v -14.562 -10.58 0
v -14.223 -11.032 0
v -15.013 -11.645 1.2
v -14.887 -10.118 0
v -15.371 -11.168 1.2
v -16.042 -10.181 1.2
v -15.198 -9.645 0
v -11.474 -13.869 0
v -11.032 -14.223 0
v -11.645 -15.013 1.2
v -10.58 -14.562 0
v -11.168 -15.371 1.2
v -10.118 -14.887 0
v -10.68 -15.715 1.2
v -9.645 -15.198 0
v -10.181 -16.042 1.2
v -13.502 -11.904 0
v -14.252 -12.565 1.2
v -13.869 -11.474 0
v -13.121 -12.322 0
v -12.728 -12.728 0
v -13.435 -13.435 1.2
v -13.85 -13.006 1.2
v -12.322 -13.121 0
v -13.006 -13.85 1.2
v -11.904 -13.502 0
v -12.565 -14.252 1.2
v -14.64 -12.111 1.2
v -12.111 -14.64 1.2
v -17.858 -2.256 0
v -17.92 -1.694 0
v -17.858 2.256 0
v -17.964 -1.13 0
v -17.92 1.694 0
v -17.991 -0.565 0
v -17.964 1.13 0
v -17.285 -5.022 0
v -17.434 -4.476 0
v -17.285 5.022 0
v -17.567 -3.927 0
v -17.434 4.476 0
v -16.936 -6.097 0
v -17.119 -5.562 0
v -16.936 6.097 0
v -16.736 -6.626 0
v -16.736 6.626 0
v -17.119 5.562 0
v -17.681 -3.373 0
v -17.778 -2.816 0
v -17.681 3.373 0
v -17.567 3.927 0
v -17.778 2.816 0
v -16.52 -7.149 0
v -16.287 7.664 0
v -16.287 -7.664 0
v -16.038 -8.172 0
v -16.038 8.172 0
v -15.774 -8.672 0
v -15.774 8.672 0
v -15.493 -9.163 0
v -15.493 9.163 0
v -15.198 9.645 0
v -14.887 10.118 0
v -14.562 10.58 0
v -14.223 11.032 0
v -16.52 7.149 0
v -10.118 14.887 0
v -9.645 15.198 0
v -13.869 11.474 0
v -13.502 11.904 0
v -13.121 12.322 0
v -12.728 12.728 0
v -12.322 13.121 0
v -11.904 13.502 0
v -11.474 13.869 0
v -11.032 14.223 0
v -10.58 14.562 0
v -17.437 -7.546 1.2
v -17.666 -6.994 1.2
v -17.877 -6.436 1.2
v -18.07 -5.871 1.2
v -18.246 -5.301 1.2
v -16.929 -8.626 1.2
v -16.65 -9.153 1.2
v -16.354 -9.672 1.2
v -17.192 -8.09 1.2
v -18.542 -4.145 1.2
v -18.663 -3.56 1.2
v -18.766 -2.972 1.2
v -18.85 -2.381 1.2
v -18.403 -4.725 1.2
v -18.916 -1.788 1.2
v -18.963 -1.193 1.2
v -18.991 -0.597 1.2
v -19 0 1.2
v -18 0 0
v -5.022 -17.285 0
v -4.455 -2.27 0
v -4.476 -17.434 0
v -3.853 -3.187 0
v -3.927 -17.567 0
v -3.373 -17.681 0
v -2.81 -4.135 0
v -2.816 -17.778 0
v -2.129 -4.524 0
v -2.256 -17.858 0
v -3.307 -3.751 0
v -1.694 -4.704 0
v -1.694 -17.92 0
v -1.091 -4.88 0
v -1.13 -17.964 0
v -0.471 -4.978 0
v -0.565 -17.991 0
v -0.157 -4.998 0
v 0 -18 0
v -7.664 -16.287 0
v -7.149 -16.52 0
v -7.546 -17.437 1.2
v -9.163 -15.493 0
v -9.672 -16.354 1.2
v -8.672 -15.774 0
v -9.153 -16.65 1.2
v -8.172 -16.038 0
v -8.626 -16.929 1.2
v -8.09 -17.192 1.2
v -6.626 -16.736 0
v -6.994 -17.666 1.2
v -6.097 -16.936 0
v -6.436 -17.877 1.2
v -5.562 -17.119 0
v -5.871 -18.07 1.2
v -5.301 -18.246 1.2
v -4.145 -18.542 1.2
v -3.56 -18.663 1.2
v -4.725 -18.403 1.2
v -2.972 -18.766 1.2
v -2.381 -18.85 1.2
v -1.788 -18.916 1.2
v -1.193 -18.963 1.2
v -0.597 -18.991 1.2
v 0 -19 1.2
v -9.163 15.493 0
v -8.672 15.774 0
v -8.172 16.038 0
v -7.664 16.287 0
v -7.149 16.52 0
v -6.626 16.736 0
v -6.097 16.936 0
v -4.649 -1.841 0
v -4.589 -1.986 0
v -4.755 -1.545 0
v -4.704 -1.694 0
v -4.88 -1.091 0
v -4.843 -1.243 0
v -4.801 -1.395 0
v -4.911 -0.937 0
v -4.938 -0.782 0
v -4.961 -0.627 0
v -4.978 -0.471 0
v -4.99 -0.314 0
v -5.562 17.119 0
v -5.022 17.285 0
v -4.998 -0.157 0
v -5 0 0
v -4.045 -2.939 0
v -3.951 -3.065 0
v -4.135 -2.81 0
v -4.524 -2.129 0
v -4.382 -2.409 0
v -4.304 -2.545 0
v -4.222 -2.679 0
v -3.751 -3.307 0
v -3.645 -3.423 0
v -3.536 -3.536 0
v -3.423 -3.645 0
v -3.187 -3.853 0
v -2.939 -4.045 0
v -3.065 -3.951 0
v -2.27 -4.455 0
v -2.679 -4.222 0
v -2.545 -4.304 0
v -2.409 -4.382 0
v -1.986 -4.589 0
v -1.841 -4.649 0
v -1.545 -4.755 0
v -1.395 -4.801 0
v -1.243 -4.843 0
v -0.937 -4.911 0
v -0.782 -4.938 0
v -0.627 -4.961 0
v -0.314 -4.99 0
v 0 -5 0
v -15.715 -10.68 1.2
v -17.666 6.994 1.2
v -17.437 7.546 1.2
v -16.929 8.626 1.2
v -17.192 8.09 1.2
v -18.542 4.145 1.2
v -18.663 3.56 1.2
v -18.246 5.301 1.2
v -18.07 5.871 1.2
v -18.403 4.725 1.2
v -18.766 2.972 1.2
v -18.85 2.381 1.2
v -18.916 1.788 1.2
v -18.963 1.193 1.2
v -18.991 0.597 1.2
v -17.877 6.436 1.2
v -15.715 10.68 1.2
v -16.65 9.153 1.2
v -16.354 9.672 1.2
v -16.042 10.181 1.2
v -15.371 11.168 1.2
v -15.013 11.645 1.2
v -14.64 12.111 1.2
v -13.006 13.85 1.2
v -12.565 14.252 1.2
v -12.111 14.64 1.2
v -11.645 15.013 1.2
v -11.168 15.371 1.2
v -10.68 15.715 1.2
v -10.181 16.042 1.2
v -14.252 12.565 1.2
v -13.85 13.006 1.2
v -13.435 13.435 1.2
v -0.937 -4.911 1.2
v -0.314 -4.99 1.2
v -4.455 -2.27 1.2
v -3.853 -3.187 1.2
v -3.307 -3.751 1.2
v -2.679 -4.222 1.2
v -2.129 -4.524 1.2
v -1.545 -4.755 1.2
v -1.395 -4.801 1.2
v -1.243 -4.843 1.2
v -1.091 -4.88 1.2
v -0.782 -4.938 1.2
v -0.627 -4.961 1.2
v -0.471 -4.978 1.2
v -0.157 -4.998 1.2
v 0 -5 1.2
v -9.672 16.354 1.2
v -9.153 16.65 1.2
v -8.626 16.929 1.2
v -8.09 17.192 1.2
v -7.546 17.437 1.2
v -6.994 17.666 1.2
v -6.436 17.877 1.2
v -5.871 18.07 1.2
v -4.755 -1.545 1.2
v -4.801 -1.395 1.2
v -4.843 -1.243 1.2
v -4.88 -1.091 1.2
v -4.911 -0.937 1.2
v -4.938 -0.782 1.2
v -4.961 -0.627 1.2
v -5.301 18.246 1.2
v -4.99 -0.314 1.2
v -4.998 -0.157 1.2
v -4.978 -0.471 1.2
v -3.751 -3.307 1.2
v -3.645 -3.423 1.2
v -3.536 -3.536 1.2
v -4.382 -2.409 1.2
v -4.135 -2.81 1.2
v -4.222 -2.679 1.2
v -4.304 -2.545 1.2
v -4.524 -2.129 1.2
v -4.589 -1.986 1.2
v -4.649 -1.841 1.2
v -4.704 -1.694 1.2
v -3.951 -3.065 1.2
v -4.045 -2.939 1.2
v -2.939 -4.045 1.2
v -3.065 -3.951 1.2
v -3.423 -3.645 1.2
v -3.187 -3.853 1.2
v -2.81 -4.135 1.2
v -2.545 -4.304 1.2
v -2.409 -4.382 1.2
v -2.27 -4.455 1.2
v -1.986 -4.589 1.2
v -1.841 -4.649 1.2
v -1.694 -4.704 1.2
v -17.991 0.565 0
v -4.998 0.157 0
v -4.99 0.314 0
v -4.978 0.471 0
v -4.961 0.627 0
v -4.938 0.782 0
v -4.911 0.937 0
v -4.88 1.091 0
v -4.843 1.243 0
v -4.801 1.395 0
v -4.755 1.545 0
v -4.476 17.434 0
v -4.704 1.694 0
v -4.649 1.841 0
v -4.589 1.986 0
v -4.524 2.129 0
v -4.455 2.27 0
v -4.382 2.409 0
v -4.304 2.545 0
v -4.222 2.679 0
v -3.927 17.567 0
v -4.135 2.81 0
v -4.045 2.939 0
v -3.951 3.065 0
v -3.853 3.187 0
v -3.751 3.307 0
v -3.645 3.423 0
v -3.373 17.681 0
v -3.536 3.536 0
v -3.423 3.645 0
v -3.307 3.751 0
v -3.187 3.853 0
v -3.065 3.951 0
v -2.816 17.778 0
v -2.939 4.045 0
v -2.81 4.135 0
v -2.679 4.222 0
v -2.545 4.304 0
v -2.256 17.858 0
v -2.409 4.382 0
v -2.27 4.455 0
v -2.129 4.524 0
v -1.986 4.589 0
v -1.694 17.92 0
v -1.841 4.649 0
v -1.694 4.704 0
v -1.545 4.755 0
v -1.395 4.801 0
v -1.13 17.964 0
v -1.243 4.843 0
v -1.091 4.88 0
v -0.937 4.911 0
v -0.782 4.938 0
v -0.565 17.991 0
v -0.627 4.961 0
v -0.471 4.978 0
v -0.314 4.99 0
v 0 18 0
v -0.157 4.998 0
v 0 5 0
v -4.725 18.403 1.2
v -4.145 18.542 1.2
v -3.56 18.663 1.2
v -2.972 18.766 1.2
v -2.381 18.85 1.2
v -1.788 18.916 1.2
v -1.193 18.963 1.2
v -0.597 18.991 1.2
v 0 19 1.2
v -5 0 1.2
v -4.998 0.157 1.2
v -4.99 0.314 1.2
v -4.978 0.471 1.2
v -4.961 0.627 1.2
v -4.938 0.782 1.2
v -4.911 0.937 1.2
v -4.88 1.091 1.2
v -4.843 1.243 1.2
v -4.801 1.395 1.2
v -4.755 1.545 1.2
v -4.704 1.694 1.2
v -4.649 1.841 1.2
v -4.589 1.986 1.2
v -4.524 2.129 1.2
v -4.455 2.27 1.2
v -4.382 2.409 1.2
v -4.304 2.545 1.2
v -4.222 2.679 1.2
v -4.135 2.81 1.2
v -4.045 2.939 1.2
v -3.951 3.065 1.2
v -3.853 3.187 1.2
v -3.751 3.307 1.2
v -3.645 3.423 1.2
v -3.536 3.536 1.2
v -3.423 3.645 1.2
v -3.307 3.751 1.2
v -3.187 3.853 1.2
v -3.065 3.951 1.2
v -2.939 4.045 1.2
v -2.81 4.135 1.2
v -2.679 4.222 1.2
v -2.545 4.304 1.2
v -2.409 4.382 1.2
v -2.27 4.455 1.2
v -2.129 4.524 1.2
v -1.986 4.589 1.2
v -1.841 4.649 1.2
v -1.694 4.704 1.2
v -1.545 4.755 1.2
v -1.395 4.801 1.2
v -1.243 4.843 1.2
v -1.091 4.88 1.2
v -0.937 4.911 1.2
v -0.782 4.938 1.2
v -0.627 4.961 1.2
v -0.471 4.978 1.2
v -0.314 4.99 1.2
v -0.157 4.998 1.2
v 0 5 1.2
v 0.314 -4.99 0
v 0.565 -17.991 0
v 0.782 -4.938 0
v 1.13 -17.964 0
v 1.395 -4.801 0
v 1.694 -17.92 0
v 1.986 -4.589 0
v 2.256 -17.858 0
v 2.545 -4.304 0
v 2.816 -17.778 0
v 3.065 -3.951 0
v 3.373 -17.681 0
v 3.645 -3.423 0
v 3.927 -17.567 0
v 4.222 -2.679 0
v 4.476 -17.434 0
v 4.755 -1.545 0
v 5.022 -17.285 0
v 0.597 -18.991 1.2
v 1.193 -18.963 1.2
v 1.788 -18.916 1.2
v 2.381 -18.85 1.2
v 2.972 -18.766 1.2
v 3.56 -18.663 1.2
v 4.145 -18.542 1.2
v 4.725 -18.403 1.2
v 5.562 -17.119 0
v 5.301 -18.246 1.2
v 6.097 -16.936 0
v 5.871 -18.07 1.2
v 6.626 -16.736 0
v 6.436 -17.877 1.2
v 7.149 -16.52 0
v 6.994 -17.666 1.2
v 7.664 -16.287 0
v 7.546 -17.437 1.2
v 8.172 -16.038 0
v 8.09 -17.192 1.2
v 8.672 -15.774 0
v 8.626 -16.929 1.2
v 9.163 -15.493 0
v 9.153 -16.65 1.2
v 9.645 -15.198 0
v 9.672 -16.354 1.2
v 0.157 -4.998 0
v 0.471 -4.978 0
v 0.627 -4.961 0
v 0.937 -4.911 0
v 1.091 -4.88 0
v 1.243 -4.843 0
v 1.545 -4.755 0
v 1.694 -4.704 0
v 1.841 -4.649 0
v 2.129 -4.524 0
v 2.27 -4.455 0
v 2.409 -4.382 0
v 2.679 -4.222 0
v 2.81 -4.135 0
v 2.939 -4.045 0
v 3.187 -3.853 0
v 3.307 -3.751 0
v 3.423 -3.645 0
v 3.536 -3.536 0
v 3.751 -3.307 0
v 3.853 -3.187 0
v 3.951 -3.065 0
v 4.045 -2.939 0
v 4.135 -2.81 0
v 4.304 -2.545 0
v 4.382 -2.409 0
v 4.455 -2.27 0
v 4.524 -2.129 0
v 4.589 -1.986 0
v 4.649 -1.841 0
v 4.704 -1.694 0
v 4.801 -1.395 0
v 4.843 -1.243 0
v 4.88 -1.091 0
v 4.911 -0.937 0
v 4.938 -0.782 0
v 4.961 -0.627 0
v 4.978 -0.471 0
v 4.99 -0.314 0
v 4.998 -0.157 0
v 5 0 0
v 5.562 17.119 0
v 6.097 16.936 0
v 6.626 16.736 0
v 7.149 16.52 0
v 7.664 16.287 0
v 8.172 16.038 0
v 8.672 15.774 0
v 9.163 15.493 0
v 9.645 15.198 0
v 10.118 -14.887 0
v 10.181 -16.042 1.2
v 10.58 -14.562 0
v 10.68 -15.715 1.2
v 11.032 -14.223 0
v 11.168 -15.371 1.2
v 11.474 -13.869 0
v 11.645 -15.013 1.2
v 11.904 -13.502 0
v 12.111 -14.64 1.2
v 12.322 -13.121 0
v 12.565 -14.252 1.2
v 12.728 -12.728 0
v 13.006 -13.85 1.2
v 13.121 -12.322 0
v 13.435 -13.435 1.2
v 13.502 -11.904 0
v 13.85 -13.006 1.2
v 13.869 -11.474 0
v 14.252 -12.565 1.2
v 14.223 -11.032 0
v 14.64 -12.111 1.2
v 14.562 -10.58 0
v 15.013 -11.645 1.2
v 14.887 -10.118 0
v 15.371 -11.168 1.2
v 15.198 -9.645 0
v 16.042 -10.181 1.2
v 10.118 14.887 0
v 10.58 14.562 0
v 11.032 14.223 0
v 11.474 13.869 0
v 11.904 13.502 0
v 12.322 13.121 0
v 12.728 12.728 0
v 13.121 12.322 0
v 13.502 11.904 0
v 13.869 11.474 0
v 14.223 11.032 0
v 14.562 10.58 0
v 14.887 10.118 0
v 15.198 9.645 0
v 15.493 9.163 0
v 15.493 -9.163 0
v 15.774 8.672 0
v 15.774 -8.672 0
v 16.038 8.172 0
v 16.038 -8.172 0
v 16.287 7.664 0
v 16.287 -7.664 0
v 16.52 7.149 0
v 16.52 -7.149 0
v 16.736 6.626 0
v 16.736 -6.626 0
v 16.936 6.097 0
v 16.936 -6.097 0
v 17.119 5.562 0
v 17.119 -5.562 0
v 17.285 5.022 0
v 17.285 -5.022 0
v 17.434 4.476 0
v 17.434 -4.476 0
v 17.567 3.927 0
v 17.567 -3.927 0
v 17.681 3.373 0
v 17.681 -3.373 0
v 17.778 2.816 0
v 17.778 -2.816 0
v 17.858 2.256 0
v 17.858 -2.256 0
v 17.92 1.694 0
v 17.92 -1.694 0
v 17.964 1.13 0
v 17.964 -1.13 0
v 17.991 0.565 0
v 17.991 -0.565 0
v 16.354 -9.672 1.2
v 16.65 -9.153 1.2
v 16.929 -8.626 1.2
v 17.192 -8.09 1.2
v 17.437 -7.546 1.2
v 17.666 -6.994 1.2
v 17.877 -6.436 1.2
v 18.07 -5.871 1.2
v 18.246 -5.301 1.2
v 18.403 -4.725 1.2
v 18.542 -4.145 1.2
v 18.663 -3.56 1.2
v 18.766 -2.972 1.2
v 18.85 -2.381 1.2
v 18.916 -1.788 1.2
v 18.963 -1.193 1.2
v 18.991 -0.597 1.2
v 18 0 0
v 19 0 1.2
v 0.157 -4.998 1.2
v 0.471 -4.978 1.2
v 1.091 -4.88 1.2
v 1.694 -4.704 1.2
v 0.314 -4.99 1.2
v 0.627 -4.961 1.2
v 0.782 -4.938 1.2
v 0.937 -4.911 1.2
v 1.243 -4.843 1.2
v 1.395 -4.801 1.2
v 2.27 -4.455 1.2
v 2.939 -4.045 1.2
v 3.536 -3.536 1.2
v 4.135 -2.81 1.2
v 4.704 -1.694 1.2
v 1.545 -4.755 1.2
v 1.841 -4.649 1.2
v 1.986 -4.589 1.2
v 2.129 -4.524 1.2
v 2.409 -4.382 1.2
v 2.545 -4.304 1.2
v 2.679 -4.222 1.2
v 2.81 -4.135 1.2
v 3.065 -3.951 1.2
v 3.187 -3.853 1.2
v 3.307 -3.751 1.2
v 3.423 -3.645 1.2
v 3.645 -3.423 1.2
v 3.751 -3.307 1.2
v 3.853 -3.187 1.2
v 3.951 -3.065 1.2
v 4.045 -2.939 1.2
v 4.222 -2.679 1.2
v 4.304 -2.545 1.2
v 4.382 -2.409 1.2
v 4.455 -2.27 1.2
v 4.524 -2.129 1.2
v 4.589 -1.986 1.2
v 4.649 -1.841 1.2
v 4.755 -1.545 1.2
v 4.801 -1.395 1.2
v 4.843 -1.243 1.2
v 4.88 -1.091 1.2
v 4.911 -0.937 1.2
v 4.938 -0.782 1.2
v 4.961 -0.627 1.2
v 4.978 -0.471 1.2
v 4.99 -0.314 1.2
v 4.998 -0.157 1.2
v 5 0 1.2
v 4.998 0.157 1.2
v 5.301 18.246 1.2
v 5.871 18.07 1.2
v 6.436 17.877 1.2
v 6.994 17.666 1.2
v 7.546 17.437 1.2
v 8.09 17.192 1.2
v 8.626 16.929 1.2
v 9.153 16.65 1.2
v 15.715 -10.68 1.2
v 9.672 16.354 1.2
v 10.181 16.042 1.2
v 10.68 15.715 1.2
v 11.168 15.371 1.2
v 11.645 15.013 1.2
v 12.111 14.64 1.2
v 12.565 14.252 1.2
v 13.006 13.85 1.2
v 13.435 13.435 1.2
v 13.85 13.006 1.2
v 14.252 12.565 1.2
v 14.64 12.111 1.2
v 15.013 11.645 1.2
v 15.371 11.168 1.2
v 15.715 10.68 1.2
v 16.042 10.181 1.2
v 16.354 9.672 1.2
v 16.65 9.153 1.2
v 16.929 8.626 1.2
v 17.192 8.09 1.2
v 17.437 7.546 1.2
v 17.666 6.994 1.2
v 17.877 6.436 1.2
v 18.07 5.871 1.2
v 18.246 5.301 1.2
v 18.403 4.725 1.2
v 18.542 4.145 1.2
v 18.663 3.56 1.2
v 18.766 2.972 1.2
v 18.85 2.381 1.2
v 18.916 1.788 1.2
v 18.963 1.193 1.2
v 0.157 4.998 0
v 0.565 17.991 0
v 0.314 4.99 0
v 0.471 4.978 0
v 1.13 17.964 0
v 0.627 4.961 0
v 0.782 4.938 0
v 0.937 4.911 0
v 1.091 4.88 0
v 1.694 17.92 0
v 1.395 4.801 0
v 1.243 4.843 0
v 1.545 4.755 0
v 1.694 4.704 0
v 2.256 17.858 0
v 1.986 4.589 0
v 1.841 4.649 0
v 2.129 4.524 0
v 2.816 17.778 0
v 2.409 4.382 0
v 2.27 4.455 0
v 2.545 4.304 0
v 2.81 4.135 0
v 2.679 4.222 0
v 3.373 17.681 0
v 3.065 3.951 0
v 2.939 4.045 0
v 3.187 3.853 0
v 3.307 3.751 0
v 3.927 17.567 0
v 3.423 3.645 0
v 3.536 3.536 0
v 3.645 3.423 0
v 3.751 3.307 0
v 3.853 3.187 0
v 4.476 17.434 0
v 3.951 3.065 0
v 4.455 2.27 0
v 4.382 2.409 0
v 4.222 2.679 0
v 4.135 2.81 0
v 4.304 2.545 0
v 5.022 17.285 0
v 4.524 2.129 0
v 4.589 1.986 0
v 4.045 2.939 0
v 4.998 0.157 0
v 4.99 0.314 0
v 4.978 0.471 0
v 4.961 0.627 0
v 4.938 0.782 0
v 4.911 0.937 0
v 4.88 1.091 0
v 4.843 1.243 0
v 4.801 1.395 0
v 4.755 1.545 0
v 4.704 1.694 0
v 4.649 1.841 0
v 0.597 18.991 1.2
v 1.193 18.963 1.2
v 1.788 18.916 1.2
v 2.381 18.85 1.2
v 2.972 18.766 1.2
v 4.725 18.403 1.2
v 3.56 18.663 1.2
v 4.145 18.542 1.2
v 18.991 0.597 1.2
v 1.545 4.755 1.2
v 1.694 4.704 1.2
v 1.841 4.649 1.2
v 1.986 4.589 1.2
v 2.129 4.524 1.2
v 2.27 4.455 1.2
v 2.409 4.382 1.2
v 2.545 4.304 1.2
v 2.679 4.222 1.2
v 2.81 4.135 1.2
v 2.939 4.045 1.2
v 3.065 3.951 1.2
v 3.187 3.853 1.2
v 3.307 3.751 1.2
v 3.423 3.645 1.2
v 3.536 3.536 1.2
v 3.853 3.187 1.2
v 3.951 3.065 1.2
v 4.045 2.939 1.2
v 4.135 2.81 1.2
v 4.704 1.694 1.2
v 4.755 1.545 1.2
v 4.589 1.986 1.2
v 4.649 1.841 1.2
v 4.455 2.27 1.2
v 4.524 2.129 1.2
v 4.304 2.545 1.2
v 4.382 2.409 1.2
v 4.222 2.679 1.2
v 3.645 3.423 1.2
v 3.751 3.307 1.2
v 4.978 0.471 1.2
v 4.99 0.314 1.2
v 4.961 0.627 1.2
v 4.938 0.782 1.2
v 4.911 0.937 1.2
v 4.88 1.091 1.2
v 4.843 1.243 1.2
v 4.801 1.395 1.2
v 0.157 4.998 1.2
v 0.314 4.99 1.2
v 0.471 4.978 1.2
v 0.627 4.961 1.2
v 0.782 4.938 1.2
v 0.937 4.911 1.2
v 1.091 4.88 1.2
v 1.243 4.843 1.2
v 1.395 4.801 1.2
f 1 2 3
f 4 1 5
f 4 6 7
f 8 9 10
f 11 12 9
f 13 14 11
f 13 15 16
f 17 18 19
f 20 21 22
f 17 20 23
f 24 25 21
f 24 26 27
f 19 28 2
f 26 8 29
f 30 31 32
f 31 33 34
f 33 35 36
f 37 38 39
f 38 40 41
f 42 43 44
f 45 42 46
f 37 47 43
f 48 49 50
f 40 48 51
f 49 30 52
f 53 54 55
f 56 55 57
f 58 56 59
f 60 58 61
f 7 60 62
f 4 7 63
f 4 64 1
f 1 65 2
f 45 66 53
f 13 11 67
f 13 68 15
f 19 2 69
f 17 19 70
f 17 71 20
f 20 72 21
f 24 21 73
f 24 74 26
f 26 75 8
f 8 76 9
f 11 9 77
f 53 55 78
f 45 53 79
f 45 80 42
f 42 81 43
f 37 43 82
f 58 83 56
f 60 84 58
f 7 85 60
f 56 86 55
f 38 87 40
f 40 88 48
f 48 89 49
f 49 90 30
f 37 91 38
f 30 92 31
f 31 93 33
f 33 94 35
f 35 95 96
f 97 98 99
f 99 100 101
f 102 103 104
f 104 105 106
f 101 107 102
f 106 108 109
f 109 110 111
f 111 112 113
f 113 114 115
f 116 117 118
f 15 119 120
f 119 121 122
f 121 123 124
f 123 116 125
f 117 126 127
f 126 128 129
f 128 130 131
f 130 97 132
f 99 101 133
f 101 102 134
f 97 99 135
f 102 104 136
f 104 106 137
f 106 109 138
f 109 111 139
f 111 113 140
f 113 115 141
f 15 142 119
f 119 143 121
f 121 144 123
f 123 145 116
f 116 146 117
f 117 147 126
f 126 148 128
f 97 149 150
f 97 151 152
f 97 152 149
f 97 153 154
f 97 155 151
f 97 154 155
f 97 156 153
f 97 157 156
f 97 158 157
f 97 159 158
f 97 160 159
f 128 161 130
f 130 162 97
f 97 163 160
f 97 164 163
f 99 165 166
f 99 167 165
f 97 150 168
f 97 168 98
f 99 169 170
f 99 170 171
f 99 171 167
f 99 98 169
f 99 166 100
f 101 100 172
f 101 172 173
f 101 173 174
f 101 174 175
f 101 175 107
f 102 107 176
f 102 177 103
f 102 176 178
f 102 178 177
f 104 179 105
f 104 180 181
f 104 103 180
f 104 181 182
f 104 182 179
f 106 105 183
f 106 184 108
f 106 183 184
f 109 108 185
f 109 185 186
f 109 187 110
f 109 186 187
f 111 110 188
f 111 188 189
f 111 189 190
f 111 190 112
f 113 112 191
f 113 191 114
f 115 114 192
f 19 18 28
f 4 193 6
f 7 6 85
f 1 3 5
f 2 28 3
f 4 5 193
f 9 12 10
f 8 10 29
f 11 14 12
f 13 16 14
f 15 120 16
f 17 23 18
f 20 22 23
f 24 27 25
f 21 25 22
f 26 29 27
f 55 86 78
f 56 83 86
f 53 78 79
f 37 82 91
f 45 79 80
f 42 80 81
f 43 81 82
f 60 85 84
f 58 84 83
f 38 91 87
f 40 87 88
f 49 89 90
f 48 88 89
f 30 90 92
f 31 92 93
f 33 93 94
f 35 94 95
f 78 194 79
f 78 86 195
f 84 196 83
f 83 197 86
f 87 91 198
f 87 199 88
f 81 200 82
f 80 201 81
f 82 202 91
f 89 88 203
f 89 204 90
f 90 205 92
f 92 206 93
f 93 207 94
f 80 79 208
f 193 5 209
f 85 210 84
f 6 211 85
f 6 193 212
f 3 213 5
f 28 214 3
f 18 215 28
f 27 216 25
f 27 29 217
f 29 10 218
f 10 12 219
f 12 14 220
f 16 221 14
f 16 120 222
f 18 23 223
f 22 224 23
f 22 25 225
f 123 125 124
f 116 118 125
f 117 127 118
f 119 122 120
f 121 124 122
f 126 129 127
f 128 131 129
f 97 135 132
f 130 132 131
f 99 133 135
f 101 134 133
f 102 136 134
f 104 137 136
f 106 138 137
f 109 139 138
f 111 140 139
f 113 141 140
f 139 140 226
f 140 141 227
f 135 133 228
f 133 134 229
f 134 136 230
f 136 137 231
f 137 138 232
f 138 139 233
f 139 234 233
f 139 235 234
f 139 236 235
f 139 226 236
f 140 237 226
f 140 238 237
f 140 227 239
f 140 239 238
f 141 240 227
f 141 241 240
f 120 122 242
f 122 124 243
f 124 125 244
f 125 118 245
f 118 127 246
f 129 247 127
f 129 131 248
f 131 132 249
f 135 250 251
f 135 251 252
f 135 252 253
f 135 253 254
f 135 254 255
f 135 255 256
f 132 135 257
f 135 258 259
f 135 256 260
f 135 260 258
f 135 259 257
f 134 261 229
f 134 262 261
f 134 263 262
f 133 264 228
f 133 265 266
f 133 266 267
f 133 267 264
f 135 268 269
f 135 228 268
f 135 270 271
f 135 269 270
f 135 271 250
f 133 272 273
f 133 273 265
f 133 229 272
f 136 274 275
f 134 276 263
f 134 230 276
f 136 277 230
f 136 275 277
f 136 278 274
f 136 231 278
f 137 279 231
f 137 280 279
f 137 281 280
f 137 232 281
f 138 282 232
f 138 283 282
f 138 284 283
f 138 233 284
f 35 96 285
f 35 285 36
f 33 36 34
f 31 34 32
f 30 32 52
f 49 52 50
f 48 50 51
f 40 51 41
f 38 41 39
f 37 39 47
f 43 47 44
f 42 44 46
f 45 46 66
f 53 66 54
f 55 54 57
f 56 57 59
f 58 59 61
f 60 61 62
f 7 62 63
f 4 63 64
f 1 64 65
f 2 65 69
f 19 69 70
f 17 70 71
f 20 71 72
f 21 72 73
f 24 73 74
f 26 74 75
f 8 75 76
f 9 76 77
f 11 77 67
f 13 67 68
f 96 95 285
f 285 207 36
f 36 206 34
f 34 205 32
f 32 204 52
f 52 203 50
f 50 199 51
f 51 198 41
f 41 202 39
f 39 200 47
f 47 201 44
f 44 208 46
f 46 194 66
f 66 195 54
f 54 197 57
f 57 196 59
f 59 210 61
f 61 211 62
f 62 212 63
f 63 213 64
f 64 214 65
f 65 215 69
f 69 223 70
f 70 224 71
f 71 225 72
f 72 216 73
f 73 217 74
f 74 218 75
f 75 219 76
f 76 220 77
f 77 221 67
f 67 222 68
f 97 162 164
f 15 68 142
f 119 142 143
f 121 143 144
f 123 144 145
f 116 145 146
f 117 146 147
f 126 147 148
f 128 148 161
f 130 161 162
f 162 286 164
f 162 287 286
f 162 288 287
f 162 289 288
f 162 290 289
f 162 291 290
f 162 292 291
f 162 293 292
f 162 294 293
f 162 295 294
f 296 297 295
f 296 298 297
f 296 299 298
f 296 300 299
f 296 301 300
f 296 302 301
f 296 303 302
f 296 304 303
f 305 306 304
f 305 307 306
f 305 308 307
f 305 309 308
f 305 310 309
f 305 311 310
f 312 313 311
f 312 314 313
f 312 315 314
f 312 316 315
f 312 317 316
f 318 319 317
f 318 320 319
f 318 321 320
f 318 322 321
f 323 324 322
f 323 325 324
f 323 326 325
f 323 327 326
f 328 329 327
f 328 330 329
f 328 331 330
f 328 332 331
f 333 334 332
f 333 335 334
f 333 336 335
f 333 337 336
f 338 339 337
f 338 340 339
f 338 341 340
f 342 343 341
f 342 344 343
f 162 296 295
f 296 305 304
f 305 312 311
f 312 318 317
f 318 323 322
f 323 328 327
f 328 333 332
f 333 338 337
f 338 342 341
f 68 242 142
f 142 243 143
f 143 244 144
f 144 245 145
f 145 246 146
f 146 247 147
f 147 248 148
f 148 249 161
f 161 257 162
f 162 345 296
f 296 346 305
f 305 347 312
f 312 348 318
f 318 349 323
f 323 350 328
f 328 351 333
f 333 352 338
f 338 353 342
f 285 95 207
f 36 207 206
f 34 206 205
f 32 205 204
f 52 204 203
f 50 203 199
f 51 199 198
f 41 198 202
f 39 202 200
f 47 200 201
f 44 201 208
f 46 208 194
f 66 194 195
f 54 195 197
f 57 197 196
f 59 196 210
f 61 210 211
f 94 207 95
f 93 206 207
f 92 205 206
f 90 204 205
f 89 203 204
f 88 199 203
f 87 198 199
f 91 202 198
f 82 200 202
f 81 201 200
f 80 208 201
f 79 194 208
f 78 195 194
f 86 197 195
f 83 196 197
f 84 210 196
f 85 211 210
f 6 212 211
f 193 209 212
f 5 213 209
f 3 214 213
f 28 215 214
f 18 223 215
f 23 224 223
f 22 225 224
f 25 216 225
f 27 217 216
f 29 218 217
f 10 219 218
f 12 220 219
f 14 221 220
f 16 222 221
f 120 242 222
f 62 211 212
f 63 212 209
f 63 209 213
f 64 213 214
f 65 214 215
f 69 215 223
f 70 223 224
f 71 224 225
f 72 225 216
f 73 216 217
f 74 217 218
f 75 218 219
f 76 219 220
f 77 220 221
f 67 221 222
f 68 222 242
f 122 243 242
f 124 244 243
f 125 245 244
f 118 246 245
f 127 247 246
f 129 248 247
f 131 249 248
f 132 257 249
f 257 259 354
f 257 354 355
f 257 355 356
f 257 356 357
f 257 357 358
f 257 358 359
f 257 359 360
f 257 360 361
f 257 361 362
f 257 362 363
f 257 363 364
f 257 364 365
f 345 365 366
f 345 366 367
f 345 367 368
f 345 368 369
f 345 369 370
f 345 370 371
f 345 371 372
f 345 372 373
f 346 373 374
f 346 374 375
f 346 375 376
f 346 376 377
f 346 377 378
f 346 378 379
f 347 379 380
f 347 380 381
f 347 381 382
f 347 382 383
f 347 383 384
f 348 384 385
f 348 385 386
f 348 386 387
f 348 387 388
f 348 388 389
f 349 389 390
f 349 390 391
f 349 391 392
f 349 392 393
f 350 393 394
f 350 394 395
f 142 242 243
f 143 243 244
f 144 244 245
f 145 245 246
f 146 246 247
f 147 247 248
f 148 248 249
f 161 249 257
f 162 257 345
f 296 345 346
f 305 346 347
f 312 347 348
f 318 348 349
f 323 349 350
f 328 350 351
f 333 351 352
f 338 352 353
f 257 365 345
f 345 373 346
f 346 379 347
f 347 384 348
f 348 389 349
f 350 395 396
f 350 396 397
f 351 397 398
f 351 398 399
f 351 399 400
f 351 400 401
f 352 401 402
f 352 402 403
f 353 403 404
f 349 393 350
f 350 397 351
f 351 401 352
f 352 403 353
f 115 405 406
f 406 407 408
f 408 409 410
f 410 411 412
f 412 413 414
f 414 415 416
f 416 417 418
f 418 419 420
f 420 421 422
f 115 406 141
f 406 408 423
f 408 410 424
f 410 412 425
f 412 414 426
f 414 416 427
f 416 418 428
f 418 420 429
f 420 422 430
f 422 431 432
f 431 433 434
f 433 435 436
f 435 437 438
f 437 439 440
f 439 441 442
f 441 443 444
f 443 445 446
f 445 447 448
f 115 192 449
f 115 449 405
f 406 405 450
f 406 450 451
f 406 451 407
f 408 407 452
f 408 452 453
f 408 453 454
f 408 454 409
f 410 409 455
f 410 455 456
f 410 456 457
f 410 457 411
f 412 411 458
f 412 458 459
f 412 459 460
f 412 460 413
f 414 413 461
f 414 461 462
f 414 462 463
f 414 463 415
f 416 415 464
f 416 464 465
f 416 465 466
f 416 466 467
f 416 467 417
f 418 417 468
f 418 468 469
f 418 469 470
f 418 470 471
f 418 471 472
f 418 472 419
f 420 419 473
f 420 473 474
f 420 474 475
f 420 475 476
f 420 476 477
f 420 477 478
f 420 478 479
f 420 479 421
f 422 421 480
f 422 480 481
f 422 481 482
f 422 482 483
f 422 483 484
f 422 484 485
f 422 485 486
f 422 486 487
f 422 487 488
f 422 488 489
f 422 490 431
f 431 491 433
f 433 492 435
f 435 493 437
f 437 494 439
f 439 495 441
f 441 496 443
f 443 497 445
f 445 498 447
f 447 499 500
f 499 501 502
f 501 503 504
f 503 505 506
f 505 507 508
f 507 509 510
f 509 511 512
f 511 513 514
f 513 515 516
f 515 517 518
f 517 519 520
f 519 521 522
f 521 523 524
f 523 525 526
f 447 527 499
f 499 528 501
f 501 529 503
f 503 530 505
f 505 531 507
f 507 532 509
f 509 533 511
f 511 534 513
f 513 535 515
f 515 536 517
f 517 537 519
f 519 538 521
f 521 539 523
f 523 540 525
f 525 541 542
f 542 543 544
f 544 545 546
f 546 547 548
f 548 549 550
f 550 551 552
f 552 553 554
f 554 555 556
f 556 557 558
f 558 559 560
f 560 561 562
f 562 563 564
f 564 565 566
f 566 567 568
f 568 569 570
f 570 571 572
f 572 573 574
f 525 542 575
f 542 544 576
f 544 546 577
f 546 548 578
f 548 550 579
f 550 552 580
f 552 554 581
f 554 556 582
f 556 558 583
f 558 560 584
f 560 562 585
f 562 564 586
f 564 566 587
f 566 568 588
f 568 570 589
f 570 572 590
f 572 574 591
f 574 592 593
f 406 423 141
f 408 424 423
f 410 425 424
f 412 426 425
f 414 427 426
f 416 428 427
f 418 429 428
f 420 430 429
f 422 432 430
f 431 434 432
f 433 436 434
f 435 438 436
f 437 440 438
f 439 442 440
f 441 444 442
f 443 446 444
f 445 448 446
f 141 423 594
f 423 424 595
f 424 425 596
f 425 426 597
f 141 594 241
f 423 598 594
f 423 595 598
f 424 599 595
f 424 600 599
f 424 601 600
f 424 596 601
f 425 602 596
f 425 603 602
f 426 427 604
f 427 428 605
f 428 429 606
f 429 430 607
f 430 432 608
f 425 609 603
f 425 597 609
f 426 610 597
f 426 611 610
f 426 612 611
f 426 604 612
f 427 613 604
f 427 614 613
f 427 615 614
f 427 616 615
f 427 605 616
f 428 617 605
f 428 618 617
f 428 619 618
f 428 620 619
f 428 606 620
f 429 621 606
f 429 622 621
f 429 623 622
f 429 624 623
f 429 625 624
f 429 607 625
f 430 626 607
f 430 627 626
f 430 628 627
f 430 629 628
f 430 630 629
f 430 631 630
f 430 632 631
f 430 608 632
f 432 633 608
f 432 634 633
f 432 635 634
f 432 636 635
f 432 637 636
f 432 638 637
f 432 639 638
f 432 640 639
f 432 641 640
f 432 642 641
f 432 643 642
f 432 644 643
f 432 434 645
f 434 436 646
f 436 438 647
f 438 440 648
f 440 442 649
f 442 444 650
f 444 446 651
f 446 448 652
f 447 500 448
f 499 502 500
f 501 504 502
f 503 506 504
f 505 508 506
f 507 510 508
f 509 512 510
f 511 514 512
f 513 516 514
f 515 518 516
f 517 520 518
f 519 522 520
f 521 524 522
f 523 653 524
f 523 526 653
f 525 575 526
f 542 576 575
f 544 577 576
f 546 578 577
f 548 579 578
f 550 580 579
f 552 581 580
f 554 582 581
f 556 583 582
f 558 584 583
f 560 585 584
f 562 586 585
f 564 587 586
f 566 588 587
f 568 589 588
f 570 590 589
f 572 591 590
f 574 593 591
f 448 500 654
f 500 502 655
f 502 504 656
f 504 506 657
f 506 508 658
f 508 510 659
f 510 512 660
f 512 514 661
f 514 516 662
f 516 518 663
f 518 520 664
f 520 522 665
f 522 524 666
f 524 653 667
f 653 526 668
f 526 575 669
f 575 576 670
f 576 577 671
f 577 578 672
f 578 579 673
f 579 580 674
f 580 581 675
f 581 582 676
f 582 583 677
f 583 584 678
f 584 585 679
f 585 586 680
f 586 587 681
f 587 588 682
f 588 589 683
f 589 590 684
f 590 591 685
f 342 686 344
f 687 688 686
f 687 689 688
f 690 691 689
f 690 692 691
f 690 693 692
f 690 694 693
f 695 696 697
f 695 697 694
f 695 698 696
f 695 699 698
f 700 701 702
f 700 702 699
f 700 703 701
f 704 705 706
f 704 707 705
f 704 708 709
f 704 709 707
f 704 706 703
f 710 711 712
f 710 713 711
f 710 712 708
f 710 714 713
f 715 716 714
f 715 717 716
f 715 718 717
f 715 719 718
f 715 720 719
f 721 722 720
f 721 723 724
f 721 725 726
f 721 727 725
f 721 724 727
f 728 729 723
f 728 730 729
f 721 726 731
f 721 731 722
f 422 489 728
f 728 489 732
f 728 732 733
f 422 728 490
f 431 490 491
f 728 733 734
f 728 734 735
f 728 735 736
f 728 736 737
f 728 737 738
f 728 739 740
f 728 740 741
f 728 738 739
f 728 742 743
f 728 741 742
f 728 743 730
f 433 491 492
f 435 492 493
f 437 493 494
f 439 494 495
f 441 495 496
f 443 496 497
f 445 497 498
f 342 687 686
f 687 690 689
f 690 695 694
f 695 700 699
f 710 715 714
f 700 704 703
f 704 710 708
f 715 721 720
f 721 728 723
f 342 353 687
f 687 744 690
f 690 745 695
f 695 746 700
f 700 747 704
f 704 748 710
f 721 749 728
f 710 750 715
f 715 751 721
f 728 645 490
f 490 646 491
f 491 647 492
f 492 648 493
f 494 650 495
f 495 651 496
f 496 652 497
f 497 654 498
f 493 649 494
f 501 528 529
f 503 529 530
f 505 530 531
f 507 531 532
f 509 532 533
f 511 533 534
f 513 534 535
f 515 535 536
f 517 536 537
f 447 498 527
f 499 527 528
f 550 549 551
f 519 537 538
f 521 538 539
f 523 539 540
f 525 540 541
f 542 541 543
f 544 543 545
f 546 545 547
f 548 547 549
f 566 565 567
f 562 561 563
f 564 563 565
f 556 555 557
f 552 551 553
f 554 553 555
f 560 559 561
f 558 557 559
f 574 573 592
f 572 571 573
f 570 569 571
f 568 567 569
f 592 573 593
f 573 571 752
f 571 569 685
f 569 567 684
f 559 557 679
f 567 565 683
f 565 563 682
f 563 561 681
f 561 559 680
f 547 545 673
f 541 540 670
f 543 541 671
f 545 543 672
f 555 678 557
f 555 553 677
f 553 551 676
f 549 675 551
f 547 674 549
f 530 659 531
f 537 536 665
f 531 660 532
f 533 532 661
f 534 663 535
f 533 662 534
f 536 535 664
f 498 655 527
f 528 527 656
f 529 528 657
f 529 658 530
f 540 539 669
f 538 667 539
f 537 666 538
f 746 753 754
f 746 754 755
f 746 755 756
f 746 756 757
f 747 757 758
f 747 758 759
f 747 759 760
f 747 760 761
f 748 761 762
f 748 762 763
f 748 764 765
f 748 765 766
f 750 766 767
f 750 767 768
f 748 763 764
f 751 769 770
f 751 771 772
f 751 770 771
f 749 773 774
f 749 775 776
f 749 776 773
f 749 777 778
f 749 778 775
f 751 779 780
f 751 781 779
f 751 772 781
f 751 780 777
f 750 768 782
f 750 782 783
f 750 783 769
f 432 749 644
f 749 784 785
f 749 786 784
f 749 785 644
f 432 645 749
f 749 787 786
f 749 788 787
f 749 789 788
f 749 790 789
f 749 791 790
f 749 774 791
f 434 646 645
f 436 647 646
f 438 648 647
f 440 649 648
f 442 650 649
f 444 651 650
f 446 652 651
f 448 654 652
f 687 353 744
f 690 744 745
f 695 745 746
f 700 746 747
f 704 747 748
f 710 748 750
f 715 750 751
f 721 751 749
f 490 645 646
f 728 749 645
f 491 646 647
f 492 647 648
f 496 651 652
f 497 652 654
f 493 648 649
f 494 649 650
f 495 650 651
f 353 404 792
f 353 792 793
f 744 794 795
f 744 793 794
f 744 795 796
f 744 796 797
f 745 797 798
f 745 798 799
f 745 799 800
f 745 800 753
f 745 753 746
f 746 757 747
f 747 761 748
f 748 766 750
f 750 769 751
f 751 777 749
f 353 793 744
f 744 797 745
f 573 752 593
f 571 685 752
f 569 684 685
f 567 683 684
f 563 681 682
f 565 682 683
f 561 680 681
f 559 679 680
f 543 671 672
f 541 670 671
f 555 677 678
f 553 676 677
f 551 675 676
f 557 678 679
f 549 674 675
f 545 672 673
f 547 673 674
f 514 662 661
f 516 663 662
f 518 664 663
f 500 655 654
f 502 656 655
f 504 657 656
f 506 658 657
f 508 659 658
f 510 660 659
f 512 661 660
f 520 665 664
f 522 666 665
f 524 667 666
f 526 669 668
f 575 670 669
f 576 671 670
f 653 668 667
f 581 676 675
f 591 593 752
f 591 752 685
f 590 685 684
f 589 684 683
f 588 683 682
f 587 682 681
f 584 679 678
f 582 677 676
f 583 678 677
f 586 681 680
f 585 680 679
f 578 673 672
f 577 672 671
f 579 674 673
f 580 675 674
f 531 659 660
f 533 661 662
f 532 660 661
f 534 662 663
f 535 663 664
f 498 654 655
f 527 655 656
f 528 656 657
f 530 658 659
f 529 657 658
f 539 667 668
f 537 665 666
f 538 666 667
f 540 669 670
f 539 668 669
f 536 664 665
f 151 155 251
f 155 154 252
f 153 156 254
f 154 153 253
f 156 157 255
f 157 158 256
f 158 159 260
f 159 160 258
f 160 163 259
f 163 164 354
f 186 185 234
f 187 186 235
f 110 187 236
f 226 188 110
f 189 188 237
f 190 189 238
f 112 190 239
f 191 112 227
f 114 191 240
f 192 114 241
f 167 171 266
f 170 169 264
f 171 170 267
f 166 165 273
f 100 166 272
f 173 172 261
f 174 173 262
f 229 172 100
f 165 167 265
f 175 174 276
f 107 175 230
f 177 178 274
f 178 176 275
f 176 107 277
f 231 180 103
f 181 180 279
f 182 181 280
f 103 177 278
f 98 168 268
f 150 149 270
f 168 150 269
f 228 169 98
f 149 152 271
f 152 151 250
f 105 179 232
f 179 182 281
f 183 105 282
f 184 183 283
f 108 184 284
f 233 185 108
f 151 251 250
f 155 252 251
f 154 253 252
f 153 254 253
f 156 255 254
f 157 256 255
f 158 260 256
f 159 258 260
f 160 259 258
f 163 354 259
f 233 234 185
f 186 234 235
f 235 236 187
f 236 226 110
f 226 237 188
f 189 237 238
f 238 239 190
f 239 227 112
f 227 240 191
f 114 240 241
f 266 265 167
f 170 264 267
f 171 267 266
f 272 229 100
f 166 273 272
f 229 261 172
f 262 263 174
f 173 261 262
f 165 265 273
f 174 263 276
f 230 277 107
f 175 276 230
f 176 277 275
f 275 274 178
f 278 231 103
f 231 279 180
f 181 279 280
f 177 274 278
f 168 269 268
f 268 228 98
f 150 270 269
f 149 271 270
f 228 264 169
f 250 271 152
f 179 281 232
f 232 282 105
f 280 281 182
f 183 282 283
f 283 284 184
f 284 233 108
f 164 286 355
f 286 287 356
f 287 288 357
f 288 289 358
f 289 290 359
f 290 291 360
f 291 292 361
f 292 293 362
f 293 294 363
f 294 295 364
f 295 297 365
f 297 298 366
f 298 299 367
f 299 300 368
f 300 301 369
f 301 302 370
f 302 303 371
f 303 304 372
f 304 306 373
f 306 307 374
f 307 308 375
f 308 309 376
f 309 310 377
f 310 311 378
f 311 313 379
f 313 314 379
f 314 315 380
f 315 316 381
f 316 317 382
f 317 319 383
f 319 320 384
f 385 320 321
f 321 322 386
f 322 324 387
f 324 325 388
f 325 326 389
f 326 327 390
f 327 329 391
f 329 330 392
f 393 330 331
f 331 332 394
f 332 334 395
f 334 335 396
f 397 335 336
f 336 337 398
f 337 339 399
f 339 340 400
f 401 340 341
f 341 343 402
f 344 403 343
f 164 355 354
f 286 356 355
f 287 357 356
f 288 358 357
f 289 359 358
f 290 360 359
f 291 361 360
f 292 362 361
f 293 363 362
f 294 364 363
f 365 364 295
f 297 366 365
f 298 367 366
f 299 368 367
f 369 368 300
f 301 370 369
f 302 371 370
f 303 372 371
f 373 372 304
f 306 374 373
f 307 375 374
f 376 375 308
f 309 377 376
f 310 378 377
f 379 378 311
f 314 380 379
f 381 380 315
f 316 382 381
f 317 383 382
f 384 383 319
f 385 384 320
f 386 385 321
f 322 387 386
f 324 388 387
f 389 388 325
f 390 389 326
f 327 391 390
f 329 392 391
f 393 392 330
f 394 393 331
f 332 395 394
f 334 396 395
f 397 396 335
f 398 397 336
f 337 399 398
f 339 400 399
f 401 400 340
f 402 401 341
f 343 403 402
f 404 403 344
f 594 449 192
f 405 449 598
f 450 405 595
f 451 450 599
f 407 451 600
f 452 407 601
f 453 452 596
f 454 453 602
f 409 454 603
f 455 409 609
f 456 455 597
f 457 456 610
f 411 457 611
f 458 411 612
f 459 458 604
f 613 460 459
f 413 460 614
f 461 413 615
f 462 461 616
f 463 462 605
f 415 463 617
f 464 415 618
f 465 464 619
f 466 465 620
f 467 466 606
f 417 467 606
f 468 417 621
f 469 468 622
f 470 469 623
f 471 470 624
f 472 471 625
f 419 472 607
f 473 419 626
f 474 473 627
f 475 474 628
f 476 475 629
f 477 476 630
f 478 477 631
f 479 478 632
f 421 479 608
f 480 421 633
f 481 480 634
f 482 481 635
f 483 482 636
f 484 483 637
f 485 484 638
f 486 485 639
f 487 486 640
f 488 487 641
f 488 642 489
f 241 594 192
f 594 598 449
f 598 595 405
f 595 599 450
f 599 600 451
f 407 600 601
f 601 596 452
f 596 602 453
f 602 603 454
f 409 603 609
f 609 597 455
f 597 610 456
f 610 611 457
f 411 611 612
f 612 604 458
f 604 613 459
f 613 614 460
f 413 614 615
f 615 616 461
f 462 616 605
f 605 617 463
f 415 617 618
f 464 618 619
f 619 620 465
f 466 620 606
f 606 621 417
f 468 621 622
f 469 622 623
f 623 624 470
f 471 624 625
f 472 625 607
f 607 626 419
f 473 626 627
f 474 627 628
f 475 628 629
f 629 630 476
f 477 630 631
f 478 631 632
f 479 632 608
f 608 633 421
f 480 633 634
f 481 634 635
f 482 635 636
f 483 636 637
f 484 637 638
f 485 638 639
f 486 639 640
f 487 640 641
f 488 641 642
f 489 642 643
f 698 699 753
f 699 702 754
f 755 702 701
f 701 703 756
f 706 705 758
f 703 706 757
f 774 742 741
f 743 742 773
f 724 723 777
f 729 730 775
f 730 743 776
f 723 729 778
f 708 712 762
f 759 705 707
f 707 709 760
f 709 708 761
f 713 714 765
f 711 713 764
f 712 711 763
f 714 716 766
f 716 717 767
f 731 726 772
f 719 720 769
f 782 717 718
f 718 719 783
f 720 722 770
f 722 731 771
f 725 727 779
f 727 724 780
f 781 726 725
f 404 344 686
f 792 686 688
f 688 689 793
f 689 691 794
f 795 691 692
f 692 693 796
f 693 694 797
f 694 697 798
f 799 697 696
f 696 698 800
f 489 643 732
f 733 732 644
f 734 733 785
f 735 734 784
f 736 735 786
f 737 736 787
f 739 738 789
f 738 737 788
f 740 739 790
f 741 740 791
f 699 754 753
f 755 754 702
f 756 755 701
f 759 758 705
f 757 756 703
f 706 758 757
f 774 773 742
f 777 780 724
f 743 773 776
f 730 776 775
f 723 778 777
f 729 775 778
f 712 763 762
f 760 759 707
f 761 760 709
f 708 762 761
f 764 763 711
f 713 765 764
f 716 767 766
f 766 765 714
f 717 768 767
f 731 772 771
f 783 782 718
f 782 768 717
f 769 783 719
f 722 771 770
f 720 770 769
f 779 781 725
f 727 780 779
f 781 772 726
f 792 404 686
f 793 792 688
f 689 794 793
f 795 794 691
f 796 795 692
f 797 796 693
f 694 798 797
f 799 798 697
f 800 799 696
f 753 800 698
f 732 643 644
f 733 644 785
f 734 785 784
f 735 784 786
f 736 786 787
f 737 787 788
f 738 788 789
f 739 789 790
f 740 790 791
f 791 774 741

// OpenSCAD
$fn=200;

skirt_radius=38/2;
skirt_thickness=1.2;
stick_radius=10/2;

module stick_skirt(
    skirt_radius=38/2,
    skirt_thickness=1.2,
    stick_radius=10/2,
) {
    difference() {
        cylinder(h=skirt_thickness, r1=skirt_radius-1,r2=skirt_radius);
        cylinder(h=skirt_thickness, r=stick_radius);
    }
}

stick_skirt();
